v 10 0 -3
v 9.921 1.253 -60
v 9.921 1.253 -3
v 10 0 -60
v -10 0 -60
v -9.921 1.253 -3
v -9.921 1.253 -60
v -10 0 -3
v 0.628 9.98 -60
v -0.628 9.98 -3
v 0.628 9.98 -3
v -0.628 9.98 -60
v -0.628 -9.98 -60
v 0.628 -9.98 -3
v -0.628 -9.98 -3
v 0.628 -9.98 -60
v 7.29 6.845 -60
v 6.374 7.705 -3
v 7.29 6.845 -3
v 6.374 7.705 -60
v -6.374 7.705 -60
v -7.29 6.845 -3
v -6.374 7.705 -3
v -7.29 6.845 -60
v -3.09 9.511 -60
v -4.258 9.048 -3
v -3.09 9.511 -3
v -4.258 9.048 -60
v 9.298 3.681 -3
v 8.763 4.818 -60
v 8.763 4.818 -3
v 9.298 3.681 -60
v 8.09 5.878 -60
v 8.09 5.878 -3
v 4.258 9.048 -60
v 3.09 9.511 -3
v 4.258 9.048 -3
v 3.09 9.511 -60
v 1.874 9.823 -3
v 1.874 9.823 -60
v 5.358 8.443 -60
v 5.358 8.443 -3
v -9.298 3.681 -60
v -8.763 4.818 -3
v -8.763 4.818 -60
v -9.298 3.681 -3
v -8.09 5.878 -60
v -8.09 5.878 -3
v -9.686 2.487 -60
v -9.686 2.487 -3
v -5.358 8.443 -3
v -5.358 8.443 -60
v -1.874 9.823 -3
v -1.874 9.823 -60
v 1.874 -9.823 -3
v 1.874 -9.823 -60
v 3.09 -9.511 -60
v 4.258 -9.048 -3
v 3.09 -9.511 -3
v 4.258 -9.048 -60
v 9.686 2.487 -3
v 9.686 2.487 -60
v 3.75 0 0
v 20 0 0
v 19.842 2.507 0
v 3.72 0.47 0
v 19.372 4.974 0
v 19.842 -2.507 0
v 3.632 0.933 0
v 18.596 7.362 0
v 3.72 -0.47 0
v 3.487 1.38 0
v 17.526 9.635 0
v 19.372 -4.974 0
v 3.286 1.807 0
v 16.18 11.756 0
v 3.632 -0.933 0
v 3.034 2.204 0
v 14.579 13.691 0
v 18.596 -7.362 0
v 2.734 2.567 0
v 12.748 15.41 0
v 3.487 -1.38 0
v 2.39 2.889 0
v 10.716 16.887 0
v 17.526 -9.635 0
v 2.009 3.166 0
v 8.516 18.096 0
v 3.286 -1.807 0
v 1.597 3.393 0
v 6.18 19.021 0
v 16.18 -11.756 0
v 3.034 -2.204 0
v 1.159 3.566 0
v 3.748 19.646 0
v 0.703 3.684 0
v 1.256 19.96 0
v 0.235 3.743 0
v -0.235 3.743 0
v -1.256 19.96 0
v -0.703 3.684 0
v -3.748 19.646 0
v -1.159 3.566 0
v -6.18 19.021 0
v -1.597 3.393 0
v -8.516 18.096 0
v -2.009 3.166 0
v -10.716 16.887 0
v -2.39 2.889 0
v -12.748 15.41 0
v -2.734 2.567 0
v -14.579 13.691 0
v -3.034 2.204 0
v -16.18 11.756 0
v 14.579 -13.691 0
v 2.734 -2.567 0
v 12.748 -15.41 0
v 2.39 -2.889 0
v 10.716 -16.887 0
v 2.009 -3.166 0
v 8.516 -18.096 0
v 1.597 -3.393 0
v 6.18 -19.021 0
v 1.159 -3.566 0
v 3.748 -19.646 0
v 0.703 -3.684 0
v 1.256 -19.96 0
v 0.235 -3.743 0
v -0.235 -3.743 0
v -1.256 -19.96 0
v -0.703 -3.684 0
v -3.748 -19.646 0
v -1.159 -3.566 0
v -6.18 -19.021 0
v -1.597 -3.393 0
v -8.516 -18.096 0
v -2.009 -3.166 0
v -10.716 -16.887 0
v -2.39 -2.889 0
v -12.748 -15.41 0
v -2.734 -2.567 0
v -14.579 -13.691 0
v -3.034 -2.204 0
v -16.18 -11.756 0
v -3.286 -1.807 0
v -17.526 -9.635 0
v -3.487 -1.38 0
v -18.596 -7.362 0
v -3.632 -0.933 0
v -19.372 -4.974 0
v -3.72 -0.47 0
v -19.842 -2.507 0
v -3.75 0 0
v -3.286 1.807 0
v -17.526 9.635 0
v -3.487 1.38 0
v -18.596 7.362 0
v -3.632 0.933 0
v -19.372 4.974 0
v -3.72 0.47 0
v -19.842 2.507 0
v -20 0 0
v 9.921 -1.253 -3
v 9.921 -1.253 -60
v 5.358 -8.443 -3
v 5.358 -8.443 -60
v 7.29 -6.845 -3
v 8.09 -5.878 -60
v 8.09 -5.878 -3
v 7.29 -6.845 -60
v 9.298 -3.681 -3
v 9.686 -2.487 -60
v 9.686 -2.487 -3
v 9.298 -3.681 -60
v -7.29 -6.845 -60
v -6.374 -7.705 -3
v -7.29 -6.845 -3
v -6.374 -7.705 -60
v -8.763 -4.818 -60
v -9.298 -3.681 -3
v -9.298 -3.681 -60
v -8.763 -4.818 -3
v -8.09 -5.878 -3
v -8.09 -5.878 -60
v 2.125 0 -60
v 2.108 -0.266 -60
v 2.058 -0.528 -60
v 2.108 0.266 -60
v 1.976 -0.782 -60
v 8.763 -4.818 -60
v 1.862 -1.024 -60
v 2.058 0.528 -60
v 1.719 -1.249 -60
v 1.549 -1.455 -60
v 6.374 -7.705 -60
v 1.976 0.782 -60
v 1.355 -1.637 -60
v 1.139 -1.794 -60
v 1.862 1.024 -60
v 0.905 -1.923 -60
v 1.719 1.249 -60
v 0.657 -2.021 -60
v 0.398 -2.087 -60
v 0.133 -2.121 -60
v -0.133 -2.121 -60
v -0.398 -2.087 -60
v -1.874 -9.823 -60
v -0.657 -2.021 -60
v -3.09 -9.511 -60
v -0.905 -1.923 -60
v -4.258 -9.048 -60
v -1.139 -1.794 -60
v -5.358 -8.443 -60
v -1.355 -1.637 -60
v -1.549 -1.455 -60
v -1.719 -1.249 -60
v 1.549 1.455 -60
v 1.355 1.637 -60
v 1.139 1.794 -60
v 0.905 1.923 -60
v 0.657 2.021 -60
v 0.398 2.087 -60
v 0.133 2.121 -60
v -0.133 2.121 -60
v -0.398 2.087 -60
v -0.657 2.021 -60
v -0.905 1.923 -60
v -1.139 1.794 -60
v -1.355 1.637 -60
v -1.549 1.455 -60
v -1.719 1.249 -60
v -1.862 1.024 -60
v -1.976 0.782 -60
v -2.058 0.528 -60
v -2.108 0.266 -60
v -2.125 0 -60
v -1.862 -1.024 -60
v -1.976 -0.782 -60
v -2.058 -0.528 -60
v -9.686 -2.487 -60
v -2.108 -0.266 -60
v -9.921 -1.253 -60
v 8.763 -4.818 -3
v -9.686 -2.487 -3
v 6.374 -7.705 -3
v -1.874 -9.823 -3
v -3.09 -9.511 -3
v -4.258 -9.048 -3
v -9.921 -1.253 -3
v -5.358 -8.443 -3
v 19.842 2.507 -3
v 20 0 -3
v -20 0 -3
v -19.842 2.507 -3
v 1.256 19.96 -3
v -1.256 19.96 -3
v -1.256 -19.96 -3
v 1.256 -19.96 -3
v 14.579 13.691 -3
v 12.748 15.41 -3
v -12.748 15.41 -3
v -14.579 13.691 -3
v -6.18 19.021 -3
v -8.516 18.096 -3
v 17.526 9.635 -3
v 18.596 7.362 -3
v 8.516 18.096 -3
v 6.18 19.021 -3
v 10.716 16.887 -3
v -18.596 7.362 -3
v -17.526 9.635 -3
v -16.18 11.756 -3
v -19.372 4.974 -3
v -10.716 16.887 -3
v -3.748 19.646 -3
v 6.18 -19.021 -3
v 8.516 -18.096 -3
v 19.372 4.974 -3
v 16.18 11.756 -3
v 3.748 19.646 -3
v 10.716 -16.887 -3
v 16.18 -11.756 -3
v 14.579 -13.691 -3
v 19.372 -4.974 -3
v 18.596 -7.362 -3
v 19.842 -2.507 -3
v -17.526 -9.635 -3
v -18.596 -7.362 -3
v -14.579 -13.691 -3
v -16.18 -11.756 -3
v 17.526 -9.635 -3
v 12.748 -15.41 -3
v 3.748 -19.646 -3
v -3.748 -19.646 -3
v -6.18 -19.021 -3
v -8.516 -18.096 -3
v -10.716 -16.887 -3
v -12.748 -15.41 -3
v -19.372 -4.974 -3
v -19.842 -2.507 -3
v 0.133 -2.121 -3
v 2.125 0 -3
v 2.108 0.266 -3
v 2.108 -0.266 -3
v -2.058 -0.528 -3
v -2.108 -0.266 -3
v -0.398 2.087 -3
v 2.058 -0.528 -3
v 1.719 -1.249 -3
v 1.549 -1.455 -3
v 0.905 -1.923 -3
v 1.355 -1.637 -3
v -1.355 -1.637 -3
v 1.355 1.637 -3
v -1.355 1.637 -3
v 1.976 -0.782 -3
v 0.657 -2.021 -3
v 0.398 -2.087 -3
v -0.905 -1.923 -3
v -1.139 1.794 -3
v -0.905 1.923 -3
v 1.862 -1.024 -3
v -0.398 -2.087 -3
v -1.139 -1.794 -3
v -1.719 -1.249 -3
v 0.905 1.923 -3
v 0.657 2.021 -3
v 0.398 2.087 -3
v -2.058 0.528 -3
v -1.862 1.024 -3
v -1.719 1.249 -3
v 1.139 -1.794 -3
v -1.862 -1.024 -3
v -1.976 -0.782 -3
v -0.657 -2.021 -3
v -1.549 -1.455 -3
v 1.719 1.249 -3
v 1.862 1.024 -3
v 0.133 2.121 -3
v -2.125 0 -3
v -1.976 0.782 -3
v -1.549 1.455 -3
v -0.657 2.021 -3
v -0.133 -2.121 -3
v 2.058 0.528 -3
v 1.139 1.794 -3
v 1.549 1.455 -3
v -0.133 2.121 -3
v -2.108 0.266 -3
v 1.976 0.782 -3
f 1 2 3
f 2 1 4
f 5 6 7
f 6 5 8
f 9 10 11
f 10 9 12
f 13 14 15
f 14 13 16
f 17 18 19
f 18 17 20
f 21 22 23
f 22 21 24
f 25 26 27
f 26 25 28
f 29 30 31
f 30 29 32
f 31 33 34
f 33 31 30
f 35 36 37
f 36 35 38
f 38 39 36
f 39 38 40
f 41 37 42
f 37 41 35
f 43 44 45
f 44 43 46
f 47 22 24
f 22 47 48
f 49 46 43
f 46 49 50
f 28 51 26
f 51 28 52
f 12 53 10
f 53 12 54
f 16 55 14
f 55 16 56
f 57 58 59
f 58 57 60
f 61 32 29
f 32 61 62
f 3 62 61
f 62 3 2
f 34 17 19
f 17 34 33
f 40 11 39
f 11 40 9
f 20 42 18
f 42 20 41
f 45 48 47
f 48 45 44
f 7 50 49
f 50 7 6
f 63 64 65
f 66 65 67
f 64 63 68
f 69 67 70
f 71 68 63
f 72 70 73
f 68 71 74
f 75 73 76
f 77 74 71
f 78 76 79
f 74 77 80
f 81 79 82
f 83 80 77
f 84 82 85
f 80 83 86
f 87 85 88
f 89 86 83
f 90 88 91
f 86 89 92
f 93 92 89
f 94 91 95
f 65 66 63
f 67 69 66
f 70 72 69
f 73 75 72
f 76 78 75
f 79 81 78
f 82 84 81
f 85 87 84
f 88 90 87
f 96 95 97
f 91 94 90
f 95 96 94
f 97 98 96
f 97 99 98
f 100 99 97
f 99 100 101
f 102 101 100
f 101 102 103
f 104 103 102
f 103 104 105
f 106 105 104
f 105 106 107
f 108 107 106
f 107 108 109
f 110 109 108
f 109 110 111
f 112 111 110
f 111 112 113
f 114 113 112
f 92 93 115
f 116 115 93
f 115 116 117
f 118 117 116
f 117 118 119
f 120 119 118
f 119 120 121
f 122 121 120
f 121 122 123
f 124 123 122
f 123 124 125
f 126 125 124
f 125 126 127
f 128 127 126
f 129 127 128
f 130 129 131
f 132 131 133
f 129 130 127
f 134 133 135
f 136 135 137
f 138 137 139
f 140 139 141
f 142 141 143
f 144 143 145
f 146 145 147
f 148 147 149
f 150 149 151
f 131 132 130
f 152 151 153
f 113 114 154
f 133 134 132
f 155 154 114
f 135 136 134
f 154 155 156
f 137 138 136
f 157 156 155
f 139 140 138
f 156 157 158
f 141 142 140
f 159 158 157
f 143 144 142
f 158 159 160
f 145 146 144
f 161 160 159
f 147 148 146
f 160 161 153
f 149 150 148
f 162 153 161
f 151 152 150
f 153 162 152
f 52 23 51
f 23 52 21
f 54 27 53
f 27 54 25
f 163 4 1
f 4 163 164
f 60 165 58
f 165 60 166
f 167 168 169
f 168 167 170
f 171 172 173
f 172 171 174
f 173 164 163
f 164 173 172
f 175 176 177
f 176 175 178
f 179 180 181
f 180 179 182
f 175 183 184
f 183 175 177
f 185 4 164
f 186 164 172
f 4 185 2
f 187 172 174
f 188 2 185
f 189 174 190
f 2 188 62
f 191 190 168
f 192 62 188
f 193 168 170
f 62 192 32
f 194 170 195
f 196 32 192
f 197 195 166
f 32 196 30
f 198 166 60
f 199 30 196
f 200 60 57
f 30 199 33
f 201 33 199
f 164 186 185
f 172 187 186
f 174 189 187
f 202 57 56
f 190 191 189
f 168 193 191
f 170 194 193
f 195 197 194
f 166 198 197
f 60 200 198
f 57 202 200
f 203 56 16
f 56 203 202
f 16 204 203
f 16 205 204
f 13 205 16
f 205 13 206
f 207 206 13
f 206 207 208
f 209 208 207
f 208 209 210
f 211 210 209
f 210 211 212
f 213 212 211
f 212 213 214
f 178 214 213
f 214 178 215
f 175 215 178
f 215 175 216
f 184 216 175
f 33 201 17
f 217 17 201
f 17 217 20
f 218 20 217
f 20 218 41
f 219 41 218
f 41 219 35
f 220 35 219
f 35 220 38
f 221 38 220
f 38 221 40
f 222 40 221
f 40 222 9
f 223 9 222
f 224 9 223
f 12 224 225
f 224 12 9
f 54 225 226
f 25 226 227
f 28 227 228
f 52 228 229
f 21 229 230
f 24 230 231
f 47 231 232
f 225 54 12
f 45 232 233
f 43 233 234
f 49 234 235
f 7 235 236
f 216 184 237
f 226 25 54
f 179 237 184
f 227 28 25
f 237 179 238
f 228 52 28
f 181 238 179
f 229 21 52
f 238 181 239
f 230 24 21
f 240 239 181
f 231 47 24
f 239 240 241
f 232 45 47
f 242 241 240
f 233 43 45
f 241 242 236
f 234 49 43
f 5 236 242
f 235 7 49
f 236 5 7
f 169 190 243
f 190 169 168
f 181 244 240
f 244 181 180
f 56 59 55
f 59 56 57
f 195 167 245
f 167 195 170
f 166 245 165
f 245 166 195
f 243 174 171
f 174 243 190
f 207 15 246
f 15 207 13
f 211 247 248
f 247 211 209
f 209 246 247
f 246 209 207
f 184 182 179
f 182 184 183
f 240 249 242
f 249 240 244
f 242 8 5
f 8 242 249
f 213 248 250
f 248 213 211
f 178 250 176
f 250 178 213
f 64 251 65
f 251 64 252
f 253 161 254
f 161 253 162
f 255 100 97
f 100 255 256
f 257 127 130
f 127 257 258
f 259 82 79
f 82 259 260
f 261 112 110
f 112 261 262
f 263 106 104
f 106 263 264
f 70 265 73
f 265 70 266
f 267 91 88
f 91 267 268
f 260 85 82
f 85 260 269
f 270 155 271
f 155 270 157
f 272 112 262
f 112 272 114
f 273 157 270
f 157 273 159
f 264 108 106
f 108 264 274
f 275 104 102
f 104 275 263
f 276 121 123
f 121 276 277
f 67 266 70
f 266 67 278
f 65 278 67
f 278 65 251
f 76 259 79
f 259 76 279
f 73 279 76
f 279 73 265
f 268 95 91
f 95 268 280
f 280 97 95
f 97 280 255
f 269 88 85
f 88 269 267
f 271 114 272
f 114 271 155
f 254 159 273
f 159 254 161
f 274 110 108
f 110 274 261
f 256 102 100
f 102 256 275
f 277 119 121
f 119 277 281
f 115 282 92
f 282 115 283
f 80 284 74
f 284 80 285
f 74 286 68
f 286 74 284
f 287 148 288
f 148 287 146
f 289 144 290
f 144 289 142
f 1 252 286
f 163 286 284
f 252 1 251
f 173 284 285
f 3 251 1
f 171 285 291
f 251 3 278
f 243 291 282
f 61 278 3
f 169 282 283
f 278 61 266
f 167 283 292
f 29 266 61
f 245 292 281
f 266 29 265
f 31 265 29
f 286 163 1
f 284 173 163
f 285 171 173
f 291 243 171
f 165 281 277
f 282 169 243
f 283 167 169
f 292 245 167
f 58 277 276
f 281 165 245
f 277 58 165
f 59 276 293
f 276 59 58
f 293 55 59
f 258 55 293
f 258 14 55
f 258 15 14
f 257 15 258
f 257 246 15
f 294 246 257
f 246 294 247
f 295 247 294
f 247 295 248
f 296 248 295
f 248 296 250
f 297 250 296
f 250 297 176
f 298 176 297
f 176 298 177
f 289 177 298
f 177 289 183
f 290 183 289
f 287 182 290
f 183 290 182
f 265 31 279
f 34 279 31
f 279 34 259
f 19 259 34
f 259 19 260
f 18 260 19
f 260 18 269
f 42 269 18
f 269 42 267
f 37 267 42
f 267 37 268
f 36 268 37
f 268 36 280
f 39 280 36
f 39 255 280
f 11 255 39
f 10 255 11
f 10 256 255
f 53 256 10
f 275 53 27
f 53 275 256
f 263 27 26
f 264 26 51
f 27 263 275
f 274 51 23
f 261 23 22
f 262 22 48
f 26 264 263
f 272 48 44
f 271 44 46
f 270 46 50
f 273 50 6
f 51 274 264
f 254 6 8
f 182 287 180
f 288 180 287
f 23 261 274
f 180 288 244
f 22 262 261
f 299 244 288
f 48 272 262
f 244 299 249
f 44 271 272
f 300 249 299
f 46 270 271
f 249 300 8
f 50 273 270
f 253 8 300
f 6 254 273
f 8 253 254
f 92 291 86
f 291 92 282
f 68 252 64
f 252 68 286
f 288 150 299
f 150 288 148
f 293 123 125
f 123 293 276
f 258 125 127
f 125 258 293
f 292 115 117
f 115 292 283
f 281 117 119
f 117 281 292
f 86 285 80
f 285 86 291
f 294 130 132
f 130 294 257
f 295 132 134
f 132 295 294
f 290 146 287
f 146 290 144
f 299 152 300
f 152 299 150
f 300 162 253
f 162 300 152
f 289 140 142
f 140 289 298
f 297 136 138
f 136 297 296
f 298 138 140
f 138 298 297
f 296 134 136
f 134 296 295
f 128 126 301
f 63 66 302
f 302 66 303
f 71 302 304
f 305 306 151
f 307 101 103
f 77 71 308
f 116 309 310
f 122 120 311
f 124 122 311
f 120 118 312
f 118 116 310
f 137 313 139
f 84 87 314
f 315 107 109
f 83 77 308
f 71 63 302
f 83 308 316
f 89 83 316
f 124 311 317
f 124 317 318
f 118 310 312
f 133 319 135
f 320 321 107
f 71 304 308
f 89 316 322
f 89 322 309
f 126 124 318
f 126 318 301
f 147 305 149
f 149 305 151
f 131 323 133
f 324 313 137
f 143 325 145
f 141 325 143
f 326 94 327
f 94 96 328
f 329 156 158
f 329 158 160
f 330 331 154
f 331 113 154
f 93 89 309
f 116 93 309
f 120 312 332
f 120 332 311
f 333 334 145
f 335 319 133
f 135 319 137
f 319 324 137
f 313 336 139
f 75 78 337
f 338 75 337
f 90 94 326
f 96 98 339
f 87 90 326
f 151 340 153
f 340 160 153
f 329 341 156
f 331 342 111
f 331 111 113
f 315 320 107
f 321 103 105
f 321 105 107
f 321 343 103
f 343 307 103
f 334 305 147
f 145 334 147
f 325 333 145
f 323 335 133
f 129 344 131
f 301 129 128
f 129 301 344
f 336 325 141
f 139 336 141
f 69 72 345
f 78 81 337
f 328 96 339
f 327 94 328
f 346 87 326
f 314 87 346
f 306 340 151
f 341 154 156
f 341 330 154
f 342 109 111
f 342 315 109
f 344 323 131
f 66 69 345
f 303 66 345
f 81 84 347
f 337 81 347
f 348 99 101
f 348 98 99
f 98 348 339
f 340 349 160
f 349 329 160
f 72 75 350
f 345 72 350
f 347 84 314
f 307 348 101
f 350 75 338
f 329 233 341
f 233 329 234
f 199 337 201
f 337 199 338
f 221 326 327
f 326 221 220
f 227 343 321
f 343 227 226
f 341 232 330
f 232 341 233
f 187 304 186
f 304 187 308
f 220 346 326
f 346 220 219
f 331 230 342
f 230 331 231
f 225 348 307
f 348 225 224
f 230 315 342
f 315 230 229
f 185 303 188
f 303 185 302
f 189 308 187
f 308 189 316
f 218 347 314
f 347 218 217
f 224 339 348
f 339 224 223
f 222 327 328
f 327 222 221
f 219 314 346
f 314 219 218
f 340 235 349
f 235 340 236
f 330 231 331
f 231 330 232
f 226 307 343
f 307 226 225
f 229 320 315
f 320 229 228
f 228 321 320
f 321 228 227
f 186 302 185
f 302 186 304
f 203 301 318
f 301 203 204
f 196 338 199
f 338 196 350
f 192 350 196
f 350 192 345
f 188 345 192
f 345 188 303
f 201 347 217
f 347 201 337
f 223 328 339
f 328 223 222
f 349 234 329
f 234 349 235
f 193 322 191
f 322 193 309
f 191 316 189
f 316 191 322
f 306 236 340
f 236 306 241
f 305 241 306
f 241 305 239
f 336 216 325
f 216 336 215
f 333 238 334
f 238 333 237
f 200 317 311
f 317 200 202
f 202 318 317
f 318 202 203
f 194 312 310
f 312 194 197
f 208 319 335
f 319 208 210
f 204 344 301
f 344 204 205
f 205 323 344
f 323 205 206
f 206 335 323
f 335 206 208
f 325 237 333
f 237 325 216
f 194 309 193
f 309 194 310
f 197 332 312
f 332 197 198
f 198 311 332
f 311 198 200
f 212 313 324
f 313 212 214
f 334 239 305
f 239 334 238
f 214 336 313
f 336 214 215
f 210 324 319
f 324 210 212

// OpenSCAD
$fn = 50;


difference() {
	union() {
		translate(v = [0, 0, -60.0000000000]) {
			cylinder(h = 60, r = 10.0000000000);
		}
		translate(v = [0, 0, -3.0000000000]) {
			cylinder(h = 3, r = 20.0000000000);
		}
	}
	union() {
		translate(v = [0, 0, 0]) {
			rotate(a = [0, 0, 0]) {
				difference() {
					union() {
						#translate(v = [0, 0, -60.0000000000]) {
							cylinder(h = 60, r = 2.0000000000);
						}
						#translate(v = [0, 0, -3]) {
							cylinder(h = 3, r = 10.0000000000, r1 = 2.1250000000, r2 = 3.7500000000);
						}
						#translate(v = [0, 0, -60.0000000000]) {
							cylinder(h = 60, r = 2.1250000000);
						}
						#translate(v = [0, 0, -60.0000000000]) {
							cylinder(h = 60, r = 2.0000000000);
						}
					}
					union();
				}
			}
		}
	}
}
